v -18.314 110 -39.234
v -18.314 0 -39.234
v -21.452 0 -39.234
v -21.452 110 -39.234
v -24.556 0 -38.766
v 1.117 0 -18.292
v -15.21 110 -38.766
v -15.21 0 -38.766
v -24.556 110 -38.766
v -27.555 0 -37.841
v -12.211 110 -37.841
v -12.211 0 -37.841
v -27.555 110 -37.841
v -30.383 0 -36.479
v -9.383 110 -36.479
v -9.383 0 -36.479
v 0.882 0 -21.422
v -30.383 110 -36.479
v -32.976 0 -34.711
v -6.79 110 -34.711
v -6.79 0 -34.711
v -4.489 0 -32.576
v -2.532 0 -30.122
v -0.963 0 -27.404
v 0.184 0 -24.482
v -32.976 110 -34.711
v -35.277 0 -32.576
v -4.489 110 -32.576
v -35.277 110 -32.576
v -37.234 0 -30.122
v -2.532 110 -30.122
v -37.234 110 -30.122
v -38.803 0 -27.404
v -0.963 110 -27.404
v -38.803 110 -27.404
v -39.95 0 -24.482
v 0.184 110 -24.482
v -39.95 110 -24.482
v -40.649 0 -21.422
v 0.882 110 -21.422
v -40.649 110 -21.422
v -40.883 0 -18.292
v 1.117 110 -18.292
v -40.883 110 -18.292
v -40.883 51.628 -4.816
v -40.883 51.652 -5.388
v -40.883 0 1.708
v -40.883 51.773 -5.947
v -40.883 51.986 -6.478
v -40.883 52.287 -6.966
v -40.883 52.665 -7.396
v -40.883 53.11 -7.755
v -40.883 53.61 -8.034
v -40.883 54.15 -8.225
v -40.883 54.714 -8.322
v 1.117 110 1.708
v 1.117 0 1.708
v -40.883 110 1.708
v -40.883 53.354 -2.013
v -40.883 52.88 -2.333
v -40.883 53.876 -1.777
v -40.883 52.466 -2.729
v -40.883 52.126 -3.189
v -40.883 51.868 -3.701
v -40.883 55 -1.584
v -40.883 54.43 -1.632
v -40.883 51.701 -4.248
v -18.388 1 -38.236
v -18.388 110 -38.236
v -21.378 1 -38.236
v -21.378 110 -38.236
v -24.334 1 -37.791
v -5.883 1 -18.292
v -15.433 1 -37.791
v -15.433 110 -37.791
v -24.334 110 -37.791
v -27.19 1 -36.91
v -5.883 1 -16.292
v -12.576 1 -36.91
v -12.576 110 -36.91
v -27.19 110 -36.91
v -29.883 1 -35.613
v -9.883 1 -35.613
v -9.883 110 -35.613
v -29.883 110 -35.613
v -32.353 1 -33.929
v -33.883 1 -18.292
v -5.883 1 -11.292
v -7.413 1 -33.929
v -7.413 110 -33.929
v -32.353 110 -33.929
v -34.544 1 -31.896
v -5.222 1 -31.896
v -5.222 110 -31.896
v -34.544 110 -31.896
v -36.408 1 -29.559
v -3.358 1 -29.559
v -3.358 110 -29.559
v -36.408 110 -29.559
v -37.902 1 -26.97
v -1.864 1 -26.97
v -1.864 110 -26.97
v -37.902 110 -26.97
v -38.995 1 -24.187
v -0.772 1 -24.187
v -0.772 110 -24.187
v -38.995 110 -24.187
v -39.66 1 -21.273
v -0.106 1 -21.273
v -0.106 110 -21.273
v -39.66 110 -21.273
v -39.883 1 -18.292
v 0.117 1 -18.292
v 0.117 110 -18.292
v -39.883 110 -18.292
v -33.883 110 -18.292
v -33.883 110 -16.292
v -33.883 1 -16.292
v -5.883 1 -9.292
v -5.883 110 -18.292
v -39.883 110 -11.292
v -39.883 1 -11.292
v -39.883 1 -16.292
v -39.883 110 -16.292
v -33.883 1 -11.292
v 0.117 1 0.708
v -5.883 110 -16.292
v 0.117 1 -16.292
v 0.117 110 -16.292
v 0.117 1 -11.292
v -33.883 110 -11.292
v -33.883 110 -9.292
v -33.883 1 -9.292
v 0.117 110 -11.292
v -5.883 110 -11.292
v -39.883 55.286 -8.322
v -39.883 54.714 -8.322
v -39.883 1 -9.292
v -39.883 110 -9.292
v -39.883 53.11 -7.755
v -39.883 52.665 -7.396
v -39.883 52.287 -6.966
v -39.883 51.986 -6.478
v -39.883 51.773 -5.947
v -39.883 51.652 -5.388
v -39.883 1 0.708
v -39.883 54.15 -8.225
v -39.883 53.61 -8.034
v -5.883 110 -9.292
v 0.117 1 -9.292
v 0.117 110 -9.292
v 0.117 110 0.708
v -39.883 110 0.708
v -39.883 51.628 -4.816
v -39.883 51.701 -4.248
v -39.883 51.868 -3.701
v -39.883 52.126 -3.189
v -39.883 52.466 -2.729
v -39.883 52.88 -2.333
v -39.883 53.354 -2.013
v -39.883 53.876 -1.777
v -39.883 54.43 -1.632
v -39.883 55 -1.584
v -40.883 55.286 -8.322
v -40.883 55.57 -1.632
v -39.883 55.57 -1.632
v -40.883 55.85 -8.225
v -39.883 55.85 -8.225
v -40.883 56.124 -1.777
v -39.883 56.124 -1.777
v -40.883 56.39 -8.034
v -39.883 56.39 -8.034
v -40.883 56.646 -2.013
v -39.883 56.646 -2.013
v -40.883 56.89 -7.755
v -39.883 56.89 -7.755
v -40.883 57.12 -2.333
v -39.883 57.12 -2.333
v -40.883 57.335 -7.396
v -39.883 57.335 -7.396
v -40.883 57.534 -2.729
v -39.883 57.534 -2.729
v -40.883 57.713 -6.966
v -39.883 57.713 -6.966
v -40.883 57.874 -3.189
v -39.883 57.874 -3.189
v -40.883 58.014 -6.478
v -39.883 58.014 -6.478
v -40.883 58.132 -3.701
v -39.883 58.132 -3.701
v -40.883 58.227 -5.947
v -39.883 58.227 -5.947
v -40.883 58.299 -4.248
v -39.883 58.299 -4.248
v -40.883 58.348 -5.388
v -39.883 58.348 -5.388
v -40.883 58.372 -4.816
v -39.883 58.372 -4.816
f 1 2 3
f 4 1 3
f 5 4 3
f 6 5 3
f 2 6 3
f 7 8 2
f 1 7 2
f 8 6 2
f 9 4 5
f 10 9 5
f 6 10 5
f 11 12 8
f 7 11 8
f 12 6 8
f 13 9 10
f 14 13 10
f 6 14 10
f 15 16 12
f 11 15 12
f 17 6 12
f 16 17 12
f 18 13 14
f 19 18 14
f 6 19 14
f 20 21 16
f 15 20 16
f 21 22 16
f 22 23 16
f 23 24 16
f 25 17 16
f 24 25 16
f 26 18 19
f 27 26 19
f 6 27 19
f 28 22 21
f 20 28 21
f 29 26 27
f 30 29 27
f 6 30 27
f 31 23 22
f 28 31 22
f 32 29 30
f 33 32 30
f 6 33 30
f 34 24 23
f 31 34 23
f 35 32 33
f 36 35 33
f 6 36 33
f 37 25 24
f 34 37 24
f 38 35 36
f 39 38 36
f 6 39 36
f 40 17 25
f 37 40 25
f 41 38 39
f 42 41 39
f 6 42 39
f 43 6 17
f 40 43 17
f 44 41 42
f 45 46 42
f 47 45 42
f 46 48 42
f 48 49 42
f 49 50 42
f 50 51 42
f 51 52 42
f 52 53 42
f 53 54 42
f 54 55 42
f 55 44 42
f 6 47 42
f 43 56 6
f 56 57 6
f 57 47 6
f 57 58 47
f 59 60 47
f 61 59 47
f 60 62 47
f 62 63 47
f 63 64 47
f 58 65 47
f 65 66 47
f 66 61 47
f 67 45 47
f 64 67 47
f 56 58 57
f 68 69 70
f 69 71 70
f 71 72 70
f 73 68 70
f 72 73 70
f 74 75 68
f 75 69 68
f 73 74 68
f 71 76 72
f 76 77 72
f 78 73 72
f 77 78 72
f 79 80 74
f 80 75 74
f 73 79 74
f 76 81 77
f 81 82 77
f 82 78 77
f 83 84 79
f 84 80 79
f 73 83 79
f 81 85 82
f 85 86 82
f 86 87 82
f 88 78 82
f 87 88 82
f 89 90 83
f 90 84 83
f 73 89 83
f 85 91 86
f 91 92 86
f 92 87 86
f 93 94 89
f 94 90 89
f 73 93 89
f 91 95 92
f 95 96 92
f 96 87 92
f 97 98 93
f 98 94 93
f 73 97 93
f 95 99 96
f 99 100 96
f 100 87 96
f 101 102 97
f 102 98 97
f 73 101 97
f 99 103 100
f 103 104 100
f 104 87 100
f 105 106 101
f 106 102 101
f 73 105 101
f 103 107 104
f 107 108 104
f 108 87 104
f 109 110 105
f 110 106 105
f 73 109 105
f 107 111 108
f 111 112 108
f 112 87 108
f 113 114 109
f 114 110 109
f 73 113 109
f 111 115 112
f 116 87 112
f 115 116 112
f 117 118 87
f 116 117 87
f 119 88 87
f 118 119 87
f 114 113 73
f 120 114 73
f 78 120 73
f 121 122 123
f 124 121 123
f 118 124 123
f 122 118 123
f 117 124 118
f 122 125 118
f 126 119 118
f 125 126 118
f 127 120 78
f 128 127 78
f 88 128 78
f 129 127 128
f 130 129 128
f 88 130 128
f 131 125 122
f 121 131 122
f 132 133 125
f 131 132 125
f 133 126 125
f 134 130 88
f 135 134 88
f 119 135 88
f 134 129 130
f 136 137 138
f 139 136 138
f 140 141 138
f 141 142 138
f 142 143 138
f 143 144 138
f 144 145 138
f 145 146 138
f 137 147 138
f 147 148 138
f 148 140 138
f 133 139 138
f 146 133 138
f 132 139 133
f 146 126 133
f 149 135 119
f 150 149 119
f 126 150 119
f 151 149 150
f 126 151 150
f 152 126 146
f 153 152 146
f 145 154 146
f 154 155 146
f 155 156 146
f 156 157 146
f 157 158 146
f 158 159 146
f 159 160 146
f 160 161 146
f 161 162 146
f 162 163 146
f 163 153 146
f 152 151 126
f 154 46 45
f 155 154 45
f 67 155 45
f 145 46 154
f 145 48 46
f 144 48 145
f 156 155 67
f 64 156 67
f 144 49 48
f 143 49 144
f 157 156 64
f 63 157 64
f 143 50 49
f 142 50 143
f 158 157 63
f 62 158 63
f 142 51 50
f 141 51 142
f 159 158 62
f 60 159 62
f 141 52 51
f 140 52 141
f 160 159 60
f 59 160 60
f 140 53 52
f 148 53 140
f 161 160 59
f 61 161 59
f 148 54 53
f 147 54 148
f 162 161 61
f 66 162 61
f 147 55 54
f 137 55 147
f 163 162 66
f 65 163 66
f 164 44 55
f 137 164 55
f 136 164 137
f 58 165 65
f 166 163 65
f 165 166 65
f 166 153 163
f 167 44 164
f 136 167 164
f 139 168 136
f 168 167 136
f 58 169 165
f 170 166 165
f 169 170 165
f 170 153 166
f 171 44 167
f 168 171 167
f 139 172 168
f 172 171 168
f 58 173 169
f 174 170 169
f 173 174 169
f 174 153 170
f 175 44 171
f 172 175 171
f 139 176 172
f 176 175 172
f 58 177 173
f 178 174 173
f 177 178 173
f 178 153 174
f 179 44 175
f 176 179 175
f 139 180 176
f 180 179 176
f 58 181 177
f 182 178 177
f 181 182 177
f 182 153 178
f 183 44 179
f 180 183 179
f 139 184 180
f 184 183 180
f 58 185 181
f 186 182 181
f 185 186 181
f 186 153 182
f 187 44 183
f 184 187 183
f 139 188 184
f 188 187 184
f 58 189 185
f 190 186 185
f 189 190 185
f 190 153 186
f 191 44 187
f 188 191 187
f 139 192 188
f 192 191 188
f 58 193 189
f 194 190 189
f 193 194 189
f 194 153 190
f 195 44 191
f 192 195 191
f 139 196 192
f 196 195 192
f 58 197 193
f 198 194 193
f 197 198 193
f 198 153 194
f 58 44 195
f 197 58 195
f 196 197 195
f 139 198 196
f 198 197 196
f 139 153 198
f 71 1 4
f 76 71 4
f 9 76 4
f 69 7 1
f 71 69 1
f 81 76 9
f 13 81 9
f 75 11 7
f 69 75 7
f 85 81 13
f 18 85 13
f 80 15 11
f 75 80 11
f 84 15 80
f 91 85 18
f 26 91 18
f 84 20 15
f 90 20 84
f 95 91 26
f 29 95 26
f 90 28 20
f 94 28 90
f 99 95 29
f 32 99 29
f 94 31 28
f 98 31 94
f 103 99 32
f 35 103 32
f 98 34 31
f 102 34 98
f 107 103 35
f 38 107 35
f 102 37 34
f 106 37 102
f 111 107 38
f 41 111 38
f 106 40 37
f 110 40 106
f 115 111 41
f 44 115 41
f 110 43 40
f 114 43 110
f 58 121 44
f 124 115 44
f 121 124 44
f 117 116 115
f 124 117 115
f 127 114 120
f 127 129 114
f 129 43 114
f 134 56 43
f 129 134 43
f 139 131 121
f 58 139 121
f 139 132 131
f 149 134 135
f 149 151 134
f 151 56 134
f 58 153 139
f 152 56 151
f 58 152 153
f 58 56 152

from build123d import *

# Parameters (mm, degrees)
BOSS_EXTRUDE1_DEPTH = 110
CUT_EXTRUDE1_DEPTH  = 109
SKETCH3_R           = 3.375
CUT_EXTRUDE2_DEPTH  = 5


with BuildPart() as part:
    # Sketch1 → Boss-Extrude1 (new body)
    with BuildSketch(Plane(origin=(0, 0, 0), x_dir=(1, 0, 0), z_dir=(0, 1, 0))):
        with BuildLine():
            Line((-40.883093525, -1.707733813), (1.116906475, -1.707733813))
            Line((1.116906475, -1.707733813), (1.116906475, 18.292266187))
            ThreePointArc((1.116906475, 18.292266187), (-19.883093525, 39.292266187), (-40.883093525, 18.292266187))
            Line((-40.883093525, 18.292266187), (-40.883093525, -1.707733813))
        make_face()
    extrude(amount=BOSS_EXTRUDE1_DEPTH)

    # Sketch2 → Cut-Extrude1 (cut)
    with BuildSketch(Plane(origin=(0, 110, 0), x_dir=(1, 0, 0), z_dir=(0, 1, 0))):
        with BuildLine():
            Line((-39.883093525, 16.292266187), (-39.883093525, 11.292266187))
            Line((-39.883093525, 11.292266187), (-33.883093525, 11.292266187))
            Line((-33.883093525, 11.292266187), (-33.883093525, 9.292266187))
            Line((-33.883093525, 9.292266187), (-39.883093525, 9.292266187))
            Line((-39.883093525, 9.292266187), (-39.883093525, -0.707733813))
            Line((-39.883093525, -0.707733813), (0.116906475, -0.707733813))
            Line((0.116906475, -0.707733813), (0.116906475, 9.292266187))
            Line((0.116906475, 9.292266187), (-5.883093525, 9.292266187))
            Line((-5.883093525, 9.292266187), (-5.883093525, 11.292266187))
            Line((-5.883093525, 11.292266187), (0.116906475, 11.292266187))
            Line((0.116906475, 11.292266187), (0.116906475, 16.292266187))
            Line((0.116906475, 16.292266187), (-5.883093525, 16.292266187))
            Line((-5.883093525, 16.292266187), (-5.883093525, 18.292266187))
            Line((-5.883093525, 18.292266187), (0.116906475, 18.292266187))
            ThreePointArc((0.116906475, 18.292266187), (-19.883093525, 38.292266187), (-39.883093525, 18.292266187))
            Line((-39.883093525, 18.292266187), (-33.883093525, 18.292266187))
            Line((-33.883093525, 18.292266187), (-33.883093525, 16.292266187))
            Line((-33.883093525, 16.292266187), (-39.883093525, 16.292266187))
        make_face()
    extrude(amount=-CUT_EXTRUDE1_DEPTH, mode=Mode.SUBTRACT)

    # Sketch3 → Cut-Extrude2 (cut)
    with BuildSketch(Plane.ZY.offset(40.883093525)):
        with Locations((-4.958932854, 55)):
            Circle(SKETCH3_R)
    extrude(amount=-CUT_EXTRUDE2_DEPTH, mode=Mode.SUBTRACT)


solid = part.part
